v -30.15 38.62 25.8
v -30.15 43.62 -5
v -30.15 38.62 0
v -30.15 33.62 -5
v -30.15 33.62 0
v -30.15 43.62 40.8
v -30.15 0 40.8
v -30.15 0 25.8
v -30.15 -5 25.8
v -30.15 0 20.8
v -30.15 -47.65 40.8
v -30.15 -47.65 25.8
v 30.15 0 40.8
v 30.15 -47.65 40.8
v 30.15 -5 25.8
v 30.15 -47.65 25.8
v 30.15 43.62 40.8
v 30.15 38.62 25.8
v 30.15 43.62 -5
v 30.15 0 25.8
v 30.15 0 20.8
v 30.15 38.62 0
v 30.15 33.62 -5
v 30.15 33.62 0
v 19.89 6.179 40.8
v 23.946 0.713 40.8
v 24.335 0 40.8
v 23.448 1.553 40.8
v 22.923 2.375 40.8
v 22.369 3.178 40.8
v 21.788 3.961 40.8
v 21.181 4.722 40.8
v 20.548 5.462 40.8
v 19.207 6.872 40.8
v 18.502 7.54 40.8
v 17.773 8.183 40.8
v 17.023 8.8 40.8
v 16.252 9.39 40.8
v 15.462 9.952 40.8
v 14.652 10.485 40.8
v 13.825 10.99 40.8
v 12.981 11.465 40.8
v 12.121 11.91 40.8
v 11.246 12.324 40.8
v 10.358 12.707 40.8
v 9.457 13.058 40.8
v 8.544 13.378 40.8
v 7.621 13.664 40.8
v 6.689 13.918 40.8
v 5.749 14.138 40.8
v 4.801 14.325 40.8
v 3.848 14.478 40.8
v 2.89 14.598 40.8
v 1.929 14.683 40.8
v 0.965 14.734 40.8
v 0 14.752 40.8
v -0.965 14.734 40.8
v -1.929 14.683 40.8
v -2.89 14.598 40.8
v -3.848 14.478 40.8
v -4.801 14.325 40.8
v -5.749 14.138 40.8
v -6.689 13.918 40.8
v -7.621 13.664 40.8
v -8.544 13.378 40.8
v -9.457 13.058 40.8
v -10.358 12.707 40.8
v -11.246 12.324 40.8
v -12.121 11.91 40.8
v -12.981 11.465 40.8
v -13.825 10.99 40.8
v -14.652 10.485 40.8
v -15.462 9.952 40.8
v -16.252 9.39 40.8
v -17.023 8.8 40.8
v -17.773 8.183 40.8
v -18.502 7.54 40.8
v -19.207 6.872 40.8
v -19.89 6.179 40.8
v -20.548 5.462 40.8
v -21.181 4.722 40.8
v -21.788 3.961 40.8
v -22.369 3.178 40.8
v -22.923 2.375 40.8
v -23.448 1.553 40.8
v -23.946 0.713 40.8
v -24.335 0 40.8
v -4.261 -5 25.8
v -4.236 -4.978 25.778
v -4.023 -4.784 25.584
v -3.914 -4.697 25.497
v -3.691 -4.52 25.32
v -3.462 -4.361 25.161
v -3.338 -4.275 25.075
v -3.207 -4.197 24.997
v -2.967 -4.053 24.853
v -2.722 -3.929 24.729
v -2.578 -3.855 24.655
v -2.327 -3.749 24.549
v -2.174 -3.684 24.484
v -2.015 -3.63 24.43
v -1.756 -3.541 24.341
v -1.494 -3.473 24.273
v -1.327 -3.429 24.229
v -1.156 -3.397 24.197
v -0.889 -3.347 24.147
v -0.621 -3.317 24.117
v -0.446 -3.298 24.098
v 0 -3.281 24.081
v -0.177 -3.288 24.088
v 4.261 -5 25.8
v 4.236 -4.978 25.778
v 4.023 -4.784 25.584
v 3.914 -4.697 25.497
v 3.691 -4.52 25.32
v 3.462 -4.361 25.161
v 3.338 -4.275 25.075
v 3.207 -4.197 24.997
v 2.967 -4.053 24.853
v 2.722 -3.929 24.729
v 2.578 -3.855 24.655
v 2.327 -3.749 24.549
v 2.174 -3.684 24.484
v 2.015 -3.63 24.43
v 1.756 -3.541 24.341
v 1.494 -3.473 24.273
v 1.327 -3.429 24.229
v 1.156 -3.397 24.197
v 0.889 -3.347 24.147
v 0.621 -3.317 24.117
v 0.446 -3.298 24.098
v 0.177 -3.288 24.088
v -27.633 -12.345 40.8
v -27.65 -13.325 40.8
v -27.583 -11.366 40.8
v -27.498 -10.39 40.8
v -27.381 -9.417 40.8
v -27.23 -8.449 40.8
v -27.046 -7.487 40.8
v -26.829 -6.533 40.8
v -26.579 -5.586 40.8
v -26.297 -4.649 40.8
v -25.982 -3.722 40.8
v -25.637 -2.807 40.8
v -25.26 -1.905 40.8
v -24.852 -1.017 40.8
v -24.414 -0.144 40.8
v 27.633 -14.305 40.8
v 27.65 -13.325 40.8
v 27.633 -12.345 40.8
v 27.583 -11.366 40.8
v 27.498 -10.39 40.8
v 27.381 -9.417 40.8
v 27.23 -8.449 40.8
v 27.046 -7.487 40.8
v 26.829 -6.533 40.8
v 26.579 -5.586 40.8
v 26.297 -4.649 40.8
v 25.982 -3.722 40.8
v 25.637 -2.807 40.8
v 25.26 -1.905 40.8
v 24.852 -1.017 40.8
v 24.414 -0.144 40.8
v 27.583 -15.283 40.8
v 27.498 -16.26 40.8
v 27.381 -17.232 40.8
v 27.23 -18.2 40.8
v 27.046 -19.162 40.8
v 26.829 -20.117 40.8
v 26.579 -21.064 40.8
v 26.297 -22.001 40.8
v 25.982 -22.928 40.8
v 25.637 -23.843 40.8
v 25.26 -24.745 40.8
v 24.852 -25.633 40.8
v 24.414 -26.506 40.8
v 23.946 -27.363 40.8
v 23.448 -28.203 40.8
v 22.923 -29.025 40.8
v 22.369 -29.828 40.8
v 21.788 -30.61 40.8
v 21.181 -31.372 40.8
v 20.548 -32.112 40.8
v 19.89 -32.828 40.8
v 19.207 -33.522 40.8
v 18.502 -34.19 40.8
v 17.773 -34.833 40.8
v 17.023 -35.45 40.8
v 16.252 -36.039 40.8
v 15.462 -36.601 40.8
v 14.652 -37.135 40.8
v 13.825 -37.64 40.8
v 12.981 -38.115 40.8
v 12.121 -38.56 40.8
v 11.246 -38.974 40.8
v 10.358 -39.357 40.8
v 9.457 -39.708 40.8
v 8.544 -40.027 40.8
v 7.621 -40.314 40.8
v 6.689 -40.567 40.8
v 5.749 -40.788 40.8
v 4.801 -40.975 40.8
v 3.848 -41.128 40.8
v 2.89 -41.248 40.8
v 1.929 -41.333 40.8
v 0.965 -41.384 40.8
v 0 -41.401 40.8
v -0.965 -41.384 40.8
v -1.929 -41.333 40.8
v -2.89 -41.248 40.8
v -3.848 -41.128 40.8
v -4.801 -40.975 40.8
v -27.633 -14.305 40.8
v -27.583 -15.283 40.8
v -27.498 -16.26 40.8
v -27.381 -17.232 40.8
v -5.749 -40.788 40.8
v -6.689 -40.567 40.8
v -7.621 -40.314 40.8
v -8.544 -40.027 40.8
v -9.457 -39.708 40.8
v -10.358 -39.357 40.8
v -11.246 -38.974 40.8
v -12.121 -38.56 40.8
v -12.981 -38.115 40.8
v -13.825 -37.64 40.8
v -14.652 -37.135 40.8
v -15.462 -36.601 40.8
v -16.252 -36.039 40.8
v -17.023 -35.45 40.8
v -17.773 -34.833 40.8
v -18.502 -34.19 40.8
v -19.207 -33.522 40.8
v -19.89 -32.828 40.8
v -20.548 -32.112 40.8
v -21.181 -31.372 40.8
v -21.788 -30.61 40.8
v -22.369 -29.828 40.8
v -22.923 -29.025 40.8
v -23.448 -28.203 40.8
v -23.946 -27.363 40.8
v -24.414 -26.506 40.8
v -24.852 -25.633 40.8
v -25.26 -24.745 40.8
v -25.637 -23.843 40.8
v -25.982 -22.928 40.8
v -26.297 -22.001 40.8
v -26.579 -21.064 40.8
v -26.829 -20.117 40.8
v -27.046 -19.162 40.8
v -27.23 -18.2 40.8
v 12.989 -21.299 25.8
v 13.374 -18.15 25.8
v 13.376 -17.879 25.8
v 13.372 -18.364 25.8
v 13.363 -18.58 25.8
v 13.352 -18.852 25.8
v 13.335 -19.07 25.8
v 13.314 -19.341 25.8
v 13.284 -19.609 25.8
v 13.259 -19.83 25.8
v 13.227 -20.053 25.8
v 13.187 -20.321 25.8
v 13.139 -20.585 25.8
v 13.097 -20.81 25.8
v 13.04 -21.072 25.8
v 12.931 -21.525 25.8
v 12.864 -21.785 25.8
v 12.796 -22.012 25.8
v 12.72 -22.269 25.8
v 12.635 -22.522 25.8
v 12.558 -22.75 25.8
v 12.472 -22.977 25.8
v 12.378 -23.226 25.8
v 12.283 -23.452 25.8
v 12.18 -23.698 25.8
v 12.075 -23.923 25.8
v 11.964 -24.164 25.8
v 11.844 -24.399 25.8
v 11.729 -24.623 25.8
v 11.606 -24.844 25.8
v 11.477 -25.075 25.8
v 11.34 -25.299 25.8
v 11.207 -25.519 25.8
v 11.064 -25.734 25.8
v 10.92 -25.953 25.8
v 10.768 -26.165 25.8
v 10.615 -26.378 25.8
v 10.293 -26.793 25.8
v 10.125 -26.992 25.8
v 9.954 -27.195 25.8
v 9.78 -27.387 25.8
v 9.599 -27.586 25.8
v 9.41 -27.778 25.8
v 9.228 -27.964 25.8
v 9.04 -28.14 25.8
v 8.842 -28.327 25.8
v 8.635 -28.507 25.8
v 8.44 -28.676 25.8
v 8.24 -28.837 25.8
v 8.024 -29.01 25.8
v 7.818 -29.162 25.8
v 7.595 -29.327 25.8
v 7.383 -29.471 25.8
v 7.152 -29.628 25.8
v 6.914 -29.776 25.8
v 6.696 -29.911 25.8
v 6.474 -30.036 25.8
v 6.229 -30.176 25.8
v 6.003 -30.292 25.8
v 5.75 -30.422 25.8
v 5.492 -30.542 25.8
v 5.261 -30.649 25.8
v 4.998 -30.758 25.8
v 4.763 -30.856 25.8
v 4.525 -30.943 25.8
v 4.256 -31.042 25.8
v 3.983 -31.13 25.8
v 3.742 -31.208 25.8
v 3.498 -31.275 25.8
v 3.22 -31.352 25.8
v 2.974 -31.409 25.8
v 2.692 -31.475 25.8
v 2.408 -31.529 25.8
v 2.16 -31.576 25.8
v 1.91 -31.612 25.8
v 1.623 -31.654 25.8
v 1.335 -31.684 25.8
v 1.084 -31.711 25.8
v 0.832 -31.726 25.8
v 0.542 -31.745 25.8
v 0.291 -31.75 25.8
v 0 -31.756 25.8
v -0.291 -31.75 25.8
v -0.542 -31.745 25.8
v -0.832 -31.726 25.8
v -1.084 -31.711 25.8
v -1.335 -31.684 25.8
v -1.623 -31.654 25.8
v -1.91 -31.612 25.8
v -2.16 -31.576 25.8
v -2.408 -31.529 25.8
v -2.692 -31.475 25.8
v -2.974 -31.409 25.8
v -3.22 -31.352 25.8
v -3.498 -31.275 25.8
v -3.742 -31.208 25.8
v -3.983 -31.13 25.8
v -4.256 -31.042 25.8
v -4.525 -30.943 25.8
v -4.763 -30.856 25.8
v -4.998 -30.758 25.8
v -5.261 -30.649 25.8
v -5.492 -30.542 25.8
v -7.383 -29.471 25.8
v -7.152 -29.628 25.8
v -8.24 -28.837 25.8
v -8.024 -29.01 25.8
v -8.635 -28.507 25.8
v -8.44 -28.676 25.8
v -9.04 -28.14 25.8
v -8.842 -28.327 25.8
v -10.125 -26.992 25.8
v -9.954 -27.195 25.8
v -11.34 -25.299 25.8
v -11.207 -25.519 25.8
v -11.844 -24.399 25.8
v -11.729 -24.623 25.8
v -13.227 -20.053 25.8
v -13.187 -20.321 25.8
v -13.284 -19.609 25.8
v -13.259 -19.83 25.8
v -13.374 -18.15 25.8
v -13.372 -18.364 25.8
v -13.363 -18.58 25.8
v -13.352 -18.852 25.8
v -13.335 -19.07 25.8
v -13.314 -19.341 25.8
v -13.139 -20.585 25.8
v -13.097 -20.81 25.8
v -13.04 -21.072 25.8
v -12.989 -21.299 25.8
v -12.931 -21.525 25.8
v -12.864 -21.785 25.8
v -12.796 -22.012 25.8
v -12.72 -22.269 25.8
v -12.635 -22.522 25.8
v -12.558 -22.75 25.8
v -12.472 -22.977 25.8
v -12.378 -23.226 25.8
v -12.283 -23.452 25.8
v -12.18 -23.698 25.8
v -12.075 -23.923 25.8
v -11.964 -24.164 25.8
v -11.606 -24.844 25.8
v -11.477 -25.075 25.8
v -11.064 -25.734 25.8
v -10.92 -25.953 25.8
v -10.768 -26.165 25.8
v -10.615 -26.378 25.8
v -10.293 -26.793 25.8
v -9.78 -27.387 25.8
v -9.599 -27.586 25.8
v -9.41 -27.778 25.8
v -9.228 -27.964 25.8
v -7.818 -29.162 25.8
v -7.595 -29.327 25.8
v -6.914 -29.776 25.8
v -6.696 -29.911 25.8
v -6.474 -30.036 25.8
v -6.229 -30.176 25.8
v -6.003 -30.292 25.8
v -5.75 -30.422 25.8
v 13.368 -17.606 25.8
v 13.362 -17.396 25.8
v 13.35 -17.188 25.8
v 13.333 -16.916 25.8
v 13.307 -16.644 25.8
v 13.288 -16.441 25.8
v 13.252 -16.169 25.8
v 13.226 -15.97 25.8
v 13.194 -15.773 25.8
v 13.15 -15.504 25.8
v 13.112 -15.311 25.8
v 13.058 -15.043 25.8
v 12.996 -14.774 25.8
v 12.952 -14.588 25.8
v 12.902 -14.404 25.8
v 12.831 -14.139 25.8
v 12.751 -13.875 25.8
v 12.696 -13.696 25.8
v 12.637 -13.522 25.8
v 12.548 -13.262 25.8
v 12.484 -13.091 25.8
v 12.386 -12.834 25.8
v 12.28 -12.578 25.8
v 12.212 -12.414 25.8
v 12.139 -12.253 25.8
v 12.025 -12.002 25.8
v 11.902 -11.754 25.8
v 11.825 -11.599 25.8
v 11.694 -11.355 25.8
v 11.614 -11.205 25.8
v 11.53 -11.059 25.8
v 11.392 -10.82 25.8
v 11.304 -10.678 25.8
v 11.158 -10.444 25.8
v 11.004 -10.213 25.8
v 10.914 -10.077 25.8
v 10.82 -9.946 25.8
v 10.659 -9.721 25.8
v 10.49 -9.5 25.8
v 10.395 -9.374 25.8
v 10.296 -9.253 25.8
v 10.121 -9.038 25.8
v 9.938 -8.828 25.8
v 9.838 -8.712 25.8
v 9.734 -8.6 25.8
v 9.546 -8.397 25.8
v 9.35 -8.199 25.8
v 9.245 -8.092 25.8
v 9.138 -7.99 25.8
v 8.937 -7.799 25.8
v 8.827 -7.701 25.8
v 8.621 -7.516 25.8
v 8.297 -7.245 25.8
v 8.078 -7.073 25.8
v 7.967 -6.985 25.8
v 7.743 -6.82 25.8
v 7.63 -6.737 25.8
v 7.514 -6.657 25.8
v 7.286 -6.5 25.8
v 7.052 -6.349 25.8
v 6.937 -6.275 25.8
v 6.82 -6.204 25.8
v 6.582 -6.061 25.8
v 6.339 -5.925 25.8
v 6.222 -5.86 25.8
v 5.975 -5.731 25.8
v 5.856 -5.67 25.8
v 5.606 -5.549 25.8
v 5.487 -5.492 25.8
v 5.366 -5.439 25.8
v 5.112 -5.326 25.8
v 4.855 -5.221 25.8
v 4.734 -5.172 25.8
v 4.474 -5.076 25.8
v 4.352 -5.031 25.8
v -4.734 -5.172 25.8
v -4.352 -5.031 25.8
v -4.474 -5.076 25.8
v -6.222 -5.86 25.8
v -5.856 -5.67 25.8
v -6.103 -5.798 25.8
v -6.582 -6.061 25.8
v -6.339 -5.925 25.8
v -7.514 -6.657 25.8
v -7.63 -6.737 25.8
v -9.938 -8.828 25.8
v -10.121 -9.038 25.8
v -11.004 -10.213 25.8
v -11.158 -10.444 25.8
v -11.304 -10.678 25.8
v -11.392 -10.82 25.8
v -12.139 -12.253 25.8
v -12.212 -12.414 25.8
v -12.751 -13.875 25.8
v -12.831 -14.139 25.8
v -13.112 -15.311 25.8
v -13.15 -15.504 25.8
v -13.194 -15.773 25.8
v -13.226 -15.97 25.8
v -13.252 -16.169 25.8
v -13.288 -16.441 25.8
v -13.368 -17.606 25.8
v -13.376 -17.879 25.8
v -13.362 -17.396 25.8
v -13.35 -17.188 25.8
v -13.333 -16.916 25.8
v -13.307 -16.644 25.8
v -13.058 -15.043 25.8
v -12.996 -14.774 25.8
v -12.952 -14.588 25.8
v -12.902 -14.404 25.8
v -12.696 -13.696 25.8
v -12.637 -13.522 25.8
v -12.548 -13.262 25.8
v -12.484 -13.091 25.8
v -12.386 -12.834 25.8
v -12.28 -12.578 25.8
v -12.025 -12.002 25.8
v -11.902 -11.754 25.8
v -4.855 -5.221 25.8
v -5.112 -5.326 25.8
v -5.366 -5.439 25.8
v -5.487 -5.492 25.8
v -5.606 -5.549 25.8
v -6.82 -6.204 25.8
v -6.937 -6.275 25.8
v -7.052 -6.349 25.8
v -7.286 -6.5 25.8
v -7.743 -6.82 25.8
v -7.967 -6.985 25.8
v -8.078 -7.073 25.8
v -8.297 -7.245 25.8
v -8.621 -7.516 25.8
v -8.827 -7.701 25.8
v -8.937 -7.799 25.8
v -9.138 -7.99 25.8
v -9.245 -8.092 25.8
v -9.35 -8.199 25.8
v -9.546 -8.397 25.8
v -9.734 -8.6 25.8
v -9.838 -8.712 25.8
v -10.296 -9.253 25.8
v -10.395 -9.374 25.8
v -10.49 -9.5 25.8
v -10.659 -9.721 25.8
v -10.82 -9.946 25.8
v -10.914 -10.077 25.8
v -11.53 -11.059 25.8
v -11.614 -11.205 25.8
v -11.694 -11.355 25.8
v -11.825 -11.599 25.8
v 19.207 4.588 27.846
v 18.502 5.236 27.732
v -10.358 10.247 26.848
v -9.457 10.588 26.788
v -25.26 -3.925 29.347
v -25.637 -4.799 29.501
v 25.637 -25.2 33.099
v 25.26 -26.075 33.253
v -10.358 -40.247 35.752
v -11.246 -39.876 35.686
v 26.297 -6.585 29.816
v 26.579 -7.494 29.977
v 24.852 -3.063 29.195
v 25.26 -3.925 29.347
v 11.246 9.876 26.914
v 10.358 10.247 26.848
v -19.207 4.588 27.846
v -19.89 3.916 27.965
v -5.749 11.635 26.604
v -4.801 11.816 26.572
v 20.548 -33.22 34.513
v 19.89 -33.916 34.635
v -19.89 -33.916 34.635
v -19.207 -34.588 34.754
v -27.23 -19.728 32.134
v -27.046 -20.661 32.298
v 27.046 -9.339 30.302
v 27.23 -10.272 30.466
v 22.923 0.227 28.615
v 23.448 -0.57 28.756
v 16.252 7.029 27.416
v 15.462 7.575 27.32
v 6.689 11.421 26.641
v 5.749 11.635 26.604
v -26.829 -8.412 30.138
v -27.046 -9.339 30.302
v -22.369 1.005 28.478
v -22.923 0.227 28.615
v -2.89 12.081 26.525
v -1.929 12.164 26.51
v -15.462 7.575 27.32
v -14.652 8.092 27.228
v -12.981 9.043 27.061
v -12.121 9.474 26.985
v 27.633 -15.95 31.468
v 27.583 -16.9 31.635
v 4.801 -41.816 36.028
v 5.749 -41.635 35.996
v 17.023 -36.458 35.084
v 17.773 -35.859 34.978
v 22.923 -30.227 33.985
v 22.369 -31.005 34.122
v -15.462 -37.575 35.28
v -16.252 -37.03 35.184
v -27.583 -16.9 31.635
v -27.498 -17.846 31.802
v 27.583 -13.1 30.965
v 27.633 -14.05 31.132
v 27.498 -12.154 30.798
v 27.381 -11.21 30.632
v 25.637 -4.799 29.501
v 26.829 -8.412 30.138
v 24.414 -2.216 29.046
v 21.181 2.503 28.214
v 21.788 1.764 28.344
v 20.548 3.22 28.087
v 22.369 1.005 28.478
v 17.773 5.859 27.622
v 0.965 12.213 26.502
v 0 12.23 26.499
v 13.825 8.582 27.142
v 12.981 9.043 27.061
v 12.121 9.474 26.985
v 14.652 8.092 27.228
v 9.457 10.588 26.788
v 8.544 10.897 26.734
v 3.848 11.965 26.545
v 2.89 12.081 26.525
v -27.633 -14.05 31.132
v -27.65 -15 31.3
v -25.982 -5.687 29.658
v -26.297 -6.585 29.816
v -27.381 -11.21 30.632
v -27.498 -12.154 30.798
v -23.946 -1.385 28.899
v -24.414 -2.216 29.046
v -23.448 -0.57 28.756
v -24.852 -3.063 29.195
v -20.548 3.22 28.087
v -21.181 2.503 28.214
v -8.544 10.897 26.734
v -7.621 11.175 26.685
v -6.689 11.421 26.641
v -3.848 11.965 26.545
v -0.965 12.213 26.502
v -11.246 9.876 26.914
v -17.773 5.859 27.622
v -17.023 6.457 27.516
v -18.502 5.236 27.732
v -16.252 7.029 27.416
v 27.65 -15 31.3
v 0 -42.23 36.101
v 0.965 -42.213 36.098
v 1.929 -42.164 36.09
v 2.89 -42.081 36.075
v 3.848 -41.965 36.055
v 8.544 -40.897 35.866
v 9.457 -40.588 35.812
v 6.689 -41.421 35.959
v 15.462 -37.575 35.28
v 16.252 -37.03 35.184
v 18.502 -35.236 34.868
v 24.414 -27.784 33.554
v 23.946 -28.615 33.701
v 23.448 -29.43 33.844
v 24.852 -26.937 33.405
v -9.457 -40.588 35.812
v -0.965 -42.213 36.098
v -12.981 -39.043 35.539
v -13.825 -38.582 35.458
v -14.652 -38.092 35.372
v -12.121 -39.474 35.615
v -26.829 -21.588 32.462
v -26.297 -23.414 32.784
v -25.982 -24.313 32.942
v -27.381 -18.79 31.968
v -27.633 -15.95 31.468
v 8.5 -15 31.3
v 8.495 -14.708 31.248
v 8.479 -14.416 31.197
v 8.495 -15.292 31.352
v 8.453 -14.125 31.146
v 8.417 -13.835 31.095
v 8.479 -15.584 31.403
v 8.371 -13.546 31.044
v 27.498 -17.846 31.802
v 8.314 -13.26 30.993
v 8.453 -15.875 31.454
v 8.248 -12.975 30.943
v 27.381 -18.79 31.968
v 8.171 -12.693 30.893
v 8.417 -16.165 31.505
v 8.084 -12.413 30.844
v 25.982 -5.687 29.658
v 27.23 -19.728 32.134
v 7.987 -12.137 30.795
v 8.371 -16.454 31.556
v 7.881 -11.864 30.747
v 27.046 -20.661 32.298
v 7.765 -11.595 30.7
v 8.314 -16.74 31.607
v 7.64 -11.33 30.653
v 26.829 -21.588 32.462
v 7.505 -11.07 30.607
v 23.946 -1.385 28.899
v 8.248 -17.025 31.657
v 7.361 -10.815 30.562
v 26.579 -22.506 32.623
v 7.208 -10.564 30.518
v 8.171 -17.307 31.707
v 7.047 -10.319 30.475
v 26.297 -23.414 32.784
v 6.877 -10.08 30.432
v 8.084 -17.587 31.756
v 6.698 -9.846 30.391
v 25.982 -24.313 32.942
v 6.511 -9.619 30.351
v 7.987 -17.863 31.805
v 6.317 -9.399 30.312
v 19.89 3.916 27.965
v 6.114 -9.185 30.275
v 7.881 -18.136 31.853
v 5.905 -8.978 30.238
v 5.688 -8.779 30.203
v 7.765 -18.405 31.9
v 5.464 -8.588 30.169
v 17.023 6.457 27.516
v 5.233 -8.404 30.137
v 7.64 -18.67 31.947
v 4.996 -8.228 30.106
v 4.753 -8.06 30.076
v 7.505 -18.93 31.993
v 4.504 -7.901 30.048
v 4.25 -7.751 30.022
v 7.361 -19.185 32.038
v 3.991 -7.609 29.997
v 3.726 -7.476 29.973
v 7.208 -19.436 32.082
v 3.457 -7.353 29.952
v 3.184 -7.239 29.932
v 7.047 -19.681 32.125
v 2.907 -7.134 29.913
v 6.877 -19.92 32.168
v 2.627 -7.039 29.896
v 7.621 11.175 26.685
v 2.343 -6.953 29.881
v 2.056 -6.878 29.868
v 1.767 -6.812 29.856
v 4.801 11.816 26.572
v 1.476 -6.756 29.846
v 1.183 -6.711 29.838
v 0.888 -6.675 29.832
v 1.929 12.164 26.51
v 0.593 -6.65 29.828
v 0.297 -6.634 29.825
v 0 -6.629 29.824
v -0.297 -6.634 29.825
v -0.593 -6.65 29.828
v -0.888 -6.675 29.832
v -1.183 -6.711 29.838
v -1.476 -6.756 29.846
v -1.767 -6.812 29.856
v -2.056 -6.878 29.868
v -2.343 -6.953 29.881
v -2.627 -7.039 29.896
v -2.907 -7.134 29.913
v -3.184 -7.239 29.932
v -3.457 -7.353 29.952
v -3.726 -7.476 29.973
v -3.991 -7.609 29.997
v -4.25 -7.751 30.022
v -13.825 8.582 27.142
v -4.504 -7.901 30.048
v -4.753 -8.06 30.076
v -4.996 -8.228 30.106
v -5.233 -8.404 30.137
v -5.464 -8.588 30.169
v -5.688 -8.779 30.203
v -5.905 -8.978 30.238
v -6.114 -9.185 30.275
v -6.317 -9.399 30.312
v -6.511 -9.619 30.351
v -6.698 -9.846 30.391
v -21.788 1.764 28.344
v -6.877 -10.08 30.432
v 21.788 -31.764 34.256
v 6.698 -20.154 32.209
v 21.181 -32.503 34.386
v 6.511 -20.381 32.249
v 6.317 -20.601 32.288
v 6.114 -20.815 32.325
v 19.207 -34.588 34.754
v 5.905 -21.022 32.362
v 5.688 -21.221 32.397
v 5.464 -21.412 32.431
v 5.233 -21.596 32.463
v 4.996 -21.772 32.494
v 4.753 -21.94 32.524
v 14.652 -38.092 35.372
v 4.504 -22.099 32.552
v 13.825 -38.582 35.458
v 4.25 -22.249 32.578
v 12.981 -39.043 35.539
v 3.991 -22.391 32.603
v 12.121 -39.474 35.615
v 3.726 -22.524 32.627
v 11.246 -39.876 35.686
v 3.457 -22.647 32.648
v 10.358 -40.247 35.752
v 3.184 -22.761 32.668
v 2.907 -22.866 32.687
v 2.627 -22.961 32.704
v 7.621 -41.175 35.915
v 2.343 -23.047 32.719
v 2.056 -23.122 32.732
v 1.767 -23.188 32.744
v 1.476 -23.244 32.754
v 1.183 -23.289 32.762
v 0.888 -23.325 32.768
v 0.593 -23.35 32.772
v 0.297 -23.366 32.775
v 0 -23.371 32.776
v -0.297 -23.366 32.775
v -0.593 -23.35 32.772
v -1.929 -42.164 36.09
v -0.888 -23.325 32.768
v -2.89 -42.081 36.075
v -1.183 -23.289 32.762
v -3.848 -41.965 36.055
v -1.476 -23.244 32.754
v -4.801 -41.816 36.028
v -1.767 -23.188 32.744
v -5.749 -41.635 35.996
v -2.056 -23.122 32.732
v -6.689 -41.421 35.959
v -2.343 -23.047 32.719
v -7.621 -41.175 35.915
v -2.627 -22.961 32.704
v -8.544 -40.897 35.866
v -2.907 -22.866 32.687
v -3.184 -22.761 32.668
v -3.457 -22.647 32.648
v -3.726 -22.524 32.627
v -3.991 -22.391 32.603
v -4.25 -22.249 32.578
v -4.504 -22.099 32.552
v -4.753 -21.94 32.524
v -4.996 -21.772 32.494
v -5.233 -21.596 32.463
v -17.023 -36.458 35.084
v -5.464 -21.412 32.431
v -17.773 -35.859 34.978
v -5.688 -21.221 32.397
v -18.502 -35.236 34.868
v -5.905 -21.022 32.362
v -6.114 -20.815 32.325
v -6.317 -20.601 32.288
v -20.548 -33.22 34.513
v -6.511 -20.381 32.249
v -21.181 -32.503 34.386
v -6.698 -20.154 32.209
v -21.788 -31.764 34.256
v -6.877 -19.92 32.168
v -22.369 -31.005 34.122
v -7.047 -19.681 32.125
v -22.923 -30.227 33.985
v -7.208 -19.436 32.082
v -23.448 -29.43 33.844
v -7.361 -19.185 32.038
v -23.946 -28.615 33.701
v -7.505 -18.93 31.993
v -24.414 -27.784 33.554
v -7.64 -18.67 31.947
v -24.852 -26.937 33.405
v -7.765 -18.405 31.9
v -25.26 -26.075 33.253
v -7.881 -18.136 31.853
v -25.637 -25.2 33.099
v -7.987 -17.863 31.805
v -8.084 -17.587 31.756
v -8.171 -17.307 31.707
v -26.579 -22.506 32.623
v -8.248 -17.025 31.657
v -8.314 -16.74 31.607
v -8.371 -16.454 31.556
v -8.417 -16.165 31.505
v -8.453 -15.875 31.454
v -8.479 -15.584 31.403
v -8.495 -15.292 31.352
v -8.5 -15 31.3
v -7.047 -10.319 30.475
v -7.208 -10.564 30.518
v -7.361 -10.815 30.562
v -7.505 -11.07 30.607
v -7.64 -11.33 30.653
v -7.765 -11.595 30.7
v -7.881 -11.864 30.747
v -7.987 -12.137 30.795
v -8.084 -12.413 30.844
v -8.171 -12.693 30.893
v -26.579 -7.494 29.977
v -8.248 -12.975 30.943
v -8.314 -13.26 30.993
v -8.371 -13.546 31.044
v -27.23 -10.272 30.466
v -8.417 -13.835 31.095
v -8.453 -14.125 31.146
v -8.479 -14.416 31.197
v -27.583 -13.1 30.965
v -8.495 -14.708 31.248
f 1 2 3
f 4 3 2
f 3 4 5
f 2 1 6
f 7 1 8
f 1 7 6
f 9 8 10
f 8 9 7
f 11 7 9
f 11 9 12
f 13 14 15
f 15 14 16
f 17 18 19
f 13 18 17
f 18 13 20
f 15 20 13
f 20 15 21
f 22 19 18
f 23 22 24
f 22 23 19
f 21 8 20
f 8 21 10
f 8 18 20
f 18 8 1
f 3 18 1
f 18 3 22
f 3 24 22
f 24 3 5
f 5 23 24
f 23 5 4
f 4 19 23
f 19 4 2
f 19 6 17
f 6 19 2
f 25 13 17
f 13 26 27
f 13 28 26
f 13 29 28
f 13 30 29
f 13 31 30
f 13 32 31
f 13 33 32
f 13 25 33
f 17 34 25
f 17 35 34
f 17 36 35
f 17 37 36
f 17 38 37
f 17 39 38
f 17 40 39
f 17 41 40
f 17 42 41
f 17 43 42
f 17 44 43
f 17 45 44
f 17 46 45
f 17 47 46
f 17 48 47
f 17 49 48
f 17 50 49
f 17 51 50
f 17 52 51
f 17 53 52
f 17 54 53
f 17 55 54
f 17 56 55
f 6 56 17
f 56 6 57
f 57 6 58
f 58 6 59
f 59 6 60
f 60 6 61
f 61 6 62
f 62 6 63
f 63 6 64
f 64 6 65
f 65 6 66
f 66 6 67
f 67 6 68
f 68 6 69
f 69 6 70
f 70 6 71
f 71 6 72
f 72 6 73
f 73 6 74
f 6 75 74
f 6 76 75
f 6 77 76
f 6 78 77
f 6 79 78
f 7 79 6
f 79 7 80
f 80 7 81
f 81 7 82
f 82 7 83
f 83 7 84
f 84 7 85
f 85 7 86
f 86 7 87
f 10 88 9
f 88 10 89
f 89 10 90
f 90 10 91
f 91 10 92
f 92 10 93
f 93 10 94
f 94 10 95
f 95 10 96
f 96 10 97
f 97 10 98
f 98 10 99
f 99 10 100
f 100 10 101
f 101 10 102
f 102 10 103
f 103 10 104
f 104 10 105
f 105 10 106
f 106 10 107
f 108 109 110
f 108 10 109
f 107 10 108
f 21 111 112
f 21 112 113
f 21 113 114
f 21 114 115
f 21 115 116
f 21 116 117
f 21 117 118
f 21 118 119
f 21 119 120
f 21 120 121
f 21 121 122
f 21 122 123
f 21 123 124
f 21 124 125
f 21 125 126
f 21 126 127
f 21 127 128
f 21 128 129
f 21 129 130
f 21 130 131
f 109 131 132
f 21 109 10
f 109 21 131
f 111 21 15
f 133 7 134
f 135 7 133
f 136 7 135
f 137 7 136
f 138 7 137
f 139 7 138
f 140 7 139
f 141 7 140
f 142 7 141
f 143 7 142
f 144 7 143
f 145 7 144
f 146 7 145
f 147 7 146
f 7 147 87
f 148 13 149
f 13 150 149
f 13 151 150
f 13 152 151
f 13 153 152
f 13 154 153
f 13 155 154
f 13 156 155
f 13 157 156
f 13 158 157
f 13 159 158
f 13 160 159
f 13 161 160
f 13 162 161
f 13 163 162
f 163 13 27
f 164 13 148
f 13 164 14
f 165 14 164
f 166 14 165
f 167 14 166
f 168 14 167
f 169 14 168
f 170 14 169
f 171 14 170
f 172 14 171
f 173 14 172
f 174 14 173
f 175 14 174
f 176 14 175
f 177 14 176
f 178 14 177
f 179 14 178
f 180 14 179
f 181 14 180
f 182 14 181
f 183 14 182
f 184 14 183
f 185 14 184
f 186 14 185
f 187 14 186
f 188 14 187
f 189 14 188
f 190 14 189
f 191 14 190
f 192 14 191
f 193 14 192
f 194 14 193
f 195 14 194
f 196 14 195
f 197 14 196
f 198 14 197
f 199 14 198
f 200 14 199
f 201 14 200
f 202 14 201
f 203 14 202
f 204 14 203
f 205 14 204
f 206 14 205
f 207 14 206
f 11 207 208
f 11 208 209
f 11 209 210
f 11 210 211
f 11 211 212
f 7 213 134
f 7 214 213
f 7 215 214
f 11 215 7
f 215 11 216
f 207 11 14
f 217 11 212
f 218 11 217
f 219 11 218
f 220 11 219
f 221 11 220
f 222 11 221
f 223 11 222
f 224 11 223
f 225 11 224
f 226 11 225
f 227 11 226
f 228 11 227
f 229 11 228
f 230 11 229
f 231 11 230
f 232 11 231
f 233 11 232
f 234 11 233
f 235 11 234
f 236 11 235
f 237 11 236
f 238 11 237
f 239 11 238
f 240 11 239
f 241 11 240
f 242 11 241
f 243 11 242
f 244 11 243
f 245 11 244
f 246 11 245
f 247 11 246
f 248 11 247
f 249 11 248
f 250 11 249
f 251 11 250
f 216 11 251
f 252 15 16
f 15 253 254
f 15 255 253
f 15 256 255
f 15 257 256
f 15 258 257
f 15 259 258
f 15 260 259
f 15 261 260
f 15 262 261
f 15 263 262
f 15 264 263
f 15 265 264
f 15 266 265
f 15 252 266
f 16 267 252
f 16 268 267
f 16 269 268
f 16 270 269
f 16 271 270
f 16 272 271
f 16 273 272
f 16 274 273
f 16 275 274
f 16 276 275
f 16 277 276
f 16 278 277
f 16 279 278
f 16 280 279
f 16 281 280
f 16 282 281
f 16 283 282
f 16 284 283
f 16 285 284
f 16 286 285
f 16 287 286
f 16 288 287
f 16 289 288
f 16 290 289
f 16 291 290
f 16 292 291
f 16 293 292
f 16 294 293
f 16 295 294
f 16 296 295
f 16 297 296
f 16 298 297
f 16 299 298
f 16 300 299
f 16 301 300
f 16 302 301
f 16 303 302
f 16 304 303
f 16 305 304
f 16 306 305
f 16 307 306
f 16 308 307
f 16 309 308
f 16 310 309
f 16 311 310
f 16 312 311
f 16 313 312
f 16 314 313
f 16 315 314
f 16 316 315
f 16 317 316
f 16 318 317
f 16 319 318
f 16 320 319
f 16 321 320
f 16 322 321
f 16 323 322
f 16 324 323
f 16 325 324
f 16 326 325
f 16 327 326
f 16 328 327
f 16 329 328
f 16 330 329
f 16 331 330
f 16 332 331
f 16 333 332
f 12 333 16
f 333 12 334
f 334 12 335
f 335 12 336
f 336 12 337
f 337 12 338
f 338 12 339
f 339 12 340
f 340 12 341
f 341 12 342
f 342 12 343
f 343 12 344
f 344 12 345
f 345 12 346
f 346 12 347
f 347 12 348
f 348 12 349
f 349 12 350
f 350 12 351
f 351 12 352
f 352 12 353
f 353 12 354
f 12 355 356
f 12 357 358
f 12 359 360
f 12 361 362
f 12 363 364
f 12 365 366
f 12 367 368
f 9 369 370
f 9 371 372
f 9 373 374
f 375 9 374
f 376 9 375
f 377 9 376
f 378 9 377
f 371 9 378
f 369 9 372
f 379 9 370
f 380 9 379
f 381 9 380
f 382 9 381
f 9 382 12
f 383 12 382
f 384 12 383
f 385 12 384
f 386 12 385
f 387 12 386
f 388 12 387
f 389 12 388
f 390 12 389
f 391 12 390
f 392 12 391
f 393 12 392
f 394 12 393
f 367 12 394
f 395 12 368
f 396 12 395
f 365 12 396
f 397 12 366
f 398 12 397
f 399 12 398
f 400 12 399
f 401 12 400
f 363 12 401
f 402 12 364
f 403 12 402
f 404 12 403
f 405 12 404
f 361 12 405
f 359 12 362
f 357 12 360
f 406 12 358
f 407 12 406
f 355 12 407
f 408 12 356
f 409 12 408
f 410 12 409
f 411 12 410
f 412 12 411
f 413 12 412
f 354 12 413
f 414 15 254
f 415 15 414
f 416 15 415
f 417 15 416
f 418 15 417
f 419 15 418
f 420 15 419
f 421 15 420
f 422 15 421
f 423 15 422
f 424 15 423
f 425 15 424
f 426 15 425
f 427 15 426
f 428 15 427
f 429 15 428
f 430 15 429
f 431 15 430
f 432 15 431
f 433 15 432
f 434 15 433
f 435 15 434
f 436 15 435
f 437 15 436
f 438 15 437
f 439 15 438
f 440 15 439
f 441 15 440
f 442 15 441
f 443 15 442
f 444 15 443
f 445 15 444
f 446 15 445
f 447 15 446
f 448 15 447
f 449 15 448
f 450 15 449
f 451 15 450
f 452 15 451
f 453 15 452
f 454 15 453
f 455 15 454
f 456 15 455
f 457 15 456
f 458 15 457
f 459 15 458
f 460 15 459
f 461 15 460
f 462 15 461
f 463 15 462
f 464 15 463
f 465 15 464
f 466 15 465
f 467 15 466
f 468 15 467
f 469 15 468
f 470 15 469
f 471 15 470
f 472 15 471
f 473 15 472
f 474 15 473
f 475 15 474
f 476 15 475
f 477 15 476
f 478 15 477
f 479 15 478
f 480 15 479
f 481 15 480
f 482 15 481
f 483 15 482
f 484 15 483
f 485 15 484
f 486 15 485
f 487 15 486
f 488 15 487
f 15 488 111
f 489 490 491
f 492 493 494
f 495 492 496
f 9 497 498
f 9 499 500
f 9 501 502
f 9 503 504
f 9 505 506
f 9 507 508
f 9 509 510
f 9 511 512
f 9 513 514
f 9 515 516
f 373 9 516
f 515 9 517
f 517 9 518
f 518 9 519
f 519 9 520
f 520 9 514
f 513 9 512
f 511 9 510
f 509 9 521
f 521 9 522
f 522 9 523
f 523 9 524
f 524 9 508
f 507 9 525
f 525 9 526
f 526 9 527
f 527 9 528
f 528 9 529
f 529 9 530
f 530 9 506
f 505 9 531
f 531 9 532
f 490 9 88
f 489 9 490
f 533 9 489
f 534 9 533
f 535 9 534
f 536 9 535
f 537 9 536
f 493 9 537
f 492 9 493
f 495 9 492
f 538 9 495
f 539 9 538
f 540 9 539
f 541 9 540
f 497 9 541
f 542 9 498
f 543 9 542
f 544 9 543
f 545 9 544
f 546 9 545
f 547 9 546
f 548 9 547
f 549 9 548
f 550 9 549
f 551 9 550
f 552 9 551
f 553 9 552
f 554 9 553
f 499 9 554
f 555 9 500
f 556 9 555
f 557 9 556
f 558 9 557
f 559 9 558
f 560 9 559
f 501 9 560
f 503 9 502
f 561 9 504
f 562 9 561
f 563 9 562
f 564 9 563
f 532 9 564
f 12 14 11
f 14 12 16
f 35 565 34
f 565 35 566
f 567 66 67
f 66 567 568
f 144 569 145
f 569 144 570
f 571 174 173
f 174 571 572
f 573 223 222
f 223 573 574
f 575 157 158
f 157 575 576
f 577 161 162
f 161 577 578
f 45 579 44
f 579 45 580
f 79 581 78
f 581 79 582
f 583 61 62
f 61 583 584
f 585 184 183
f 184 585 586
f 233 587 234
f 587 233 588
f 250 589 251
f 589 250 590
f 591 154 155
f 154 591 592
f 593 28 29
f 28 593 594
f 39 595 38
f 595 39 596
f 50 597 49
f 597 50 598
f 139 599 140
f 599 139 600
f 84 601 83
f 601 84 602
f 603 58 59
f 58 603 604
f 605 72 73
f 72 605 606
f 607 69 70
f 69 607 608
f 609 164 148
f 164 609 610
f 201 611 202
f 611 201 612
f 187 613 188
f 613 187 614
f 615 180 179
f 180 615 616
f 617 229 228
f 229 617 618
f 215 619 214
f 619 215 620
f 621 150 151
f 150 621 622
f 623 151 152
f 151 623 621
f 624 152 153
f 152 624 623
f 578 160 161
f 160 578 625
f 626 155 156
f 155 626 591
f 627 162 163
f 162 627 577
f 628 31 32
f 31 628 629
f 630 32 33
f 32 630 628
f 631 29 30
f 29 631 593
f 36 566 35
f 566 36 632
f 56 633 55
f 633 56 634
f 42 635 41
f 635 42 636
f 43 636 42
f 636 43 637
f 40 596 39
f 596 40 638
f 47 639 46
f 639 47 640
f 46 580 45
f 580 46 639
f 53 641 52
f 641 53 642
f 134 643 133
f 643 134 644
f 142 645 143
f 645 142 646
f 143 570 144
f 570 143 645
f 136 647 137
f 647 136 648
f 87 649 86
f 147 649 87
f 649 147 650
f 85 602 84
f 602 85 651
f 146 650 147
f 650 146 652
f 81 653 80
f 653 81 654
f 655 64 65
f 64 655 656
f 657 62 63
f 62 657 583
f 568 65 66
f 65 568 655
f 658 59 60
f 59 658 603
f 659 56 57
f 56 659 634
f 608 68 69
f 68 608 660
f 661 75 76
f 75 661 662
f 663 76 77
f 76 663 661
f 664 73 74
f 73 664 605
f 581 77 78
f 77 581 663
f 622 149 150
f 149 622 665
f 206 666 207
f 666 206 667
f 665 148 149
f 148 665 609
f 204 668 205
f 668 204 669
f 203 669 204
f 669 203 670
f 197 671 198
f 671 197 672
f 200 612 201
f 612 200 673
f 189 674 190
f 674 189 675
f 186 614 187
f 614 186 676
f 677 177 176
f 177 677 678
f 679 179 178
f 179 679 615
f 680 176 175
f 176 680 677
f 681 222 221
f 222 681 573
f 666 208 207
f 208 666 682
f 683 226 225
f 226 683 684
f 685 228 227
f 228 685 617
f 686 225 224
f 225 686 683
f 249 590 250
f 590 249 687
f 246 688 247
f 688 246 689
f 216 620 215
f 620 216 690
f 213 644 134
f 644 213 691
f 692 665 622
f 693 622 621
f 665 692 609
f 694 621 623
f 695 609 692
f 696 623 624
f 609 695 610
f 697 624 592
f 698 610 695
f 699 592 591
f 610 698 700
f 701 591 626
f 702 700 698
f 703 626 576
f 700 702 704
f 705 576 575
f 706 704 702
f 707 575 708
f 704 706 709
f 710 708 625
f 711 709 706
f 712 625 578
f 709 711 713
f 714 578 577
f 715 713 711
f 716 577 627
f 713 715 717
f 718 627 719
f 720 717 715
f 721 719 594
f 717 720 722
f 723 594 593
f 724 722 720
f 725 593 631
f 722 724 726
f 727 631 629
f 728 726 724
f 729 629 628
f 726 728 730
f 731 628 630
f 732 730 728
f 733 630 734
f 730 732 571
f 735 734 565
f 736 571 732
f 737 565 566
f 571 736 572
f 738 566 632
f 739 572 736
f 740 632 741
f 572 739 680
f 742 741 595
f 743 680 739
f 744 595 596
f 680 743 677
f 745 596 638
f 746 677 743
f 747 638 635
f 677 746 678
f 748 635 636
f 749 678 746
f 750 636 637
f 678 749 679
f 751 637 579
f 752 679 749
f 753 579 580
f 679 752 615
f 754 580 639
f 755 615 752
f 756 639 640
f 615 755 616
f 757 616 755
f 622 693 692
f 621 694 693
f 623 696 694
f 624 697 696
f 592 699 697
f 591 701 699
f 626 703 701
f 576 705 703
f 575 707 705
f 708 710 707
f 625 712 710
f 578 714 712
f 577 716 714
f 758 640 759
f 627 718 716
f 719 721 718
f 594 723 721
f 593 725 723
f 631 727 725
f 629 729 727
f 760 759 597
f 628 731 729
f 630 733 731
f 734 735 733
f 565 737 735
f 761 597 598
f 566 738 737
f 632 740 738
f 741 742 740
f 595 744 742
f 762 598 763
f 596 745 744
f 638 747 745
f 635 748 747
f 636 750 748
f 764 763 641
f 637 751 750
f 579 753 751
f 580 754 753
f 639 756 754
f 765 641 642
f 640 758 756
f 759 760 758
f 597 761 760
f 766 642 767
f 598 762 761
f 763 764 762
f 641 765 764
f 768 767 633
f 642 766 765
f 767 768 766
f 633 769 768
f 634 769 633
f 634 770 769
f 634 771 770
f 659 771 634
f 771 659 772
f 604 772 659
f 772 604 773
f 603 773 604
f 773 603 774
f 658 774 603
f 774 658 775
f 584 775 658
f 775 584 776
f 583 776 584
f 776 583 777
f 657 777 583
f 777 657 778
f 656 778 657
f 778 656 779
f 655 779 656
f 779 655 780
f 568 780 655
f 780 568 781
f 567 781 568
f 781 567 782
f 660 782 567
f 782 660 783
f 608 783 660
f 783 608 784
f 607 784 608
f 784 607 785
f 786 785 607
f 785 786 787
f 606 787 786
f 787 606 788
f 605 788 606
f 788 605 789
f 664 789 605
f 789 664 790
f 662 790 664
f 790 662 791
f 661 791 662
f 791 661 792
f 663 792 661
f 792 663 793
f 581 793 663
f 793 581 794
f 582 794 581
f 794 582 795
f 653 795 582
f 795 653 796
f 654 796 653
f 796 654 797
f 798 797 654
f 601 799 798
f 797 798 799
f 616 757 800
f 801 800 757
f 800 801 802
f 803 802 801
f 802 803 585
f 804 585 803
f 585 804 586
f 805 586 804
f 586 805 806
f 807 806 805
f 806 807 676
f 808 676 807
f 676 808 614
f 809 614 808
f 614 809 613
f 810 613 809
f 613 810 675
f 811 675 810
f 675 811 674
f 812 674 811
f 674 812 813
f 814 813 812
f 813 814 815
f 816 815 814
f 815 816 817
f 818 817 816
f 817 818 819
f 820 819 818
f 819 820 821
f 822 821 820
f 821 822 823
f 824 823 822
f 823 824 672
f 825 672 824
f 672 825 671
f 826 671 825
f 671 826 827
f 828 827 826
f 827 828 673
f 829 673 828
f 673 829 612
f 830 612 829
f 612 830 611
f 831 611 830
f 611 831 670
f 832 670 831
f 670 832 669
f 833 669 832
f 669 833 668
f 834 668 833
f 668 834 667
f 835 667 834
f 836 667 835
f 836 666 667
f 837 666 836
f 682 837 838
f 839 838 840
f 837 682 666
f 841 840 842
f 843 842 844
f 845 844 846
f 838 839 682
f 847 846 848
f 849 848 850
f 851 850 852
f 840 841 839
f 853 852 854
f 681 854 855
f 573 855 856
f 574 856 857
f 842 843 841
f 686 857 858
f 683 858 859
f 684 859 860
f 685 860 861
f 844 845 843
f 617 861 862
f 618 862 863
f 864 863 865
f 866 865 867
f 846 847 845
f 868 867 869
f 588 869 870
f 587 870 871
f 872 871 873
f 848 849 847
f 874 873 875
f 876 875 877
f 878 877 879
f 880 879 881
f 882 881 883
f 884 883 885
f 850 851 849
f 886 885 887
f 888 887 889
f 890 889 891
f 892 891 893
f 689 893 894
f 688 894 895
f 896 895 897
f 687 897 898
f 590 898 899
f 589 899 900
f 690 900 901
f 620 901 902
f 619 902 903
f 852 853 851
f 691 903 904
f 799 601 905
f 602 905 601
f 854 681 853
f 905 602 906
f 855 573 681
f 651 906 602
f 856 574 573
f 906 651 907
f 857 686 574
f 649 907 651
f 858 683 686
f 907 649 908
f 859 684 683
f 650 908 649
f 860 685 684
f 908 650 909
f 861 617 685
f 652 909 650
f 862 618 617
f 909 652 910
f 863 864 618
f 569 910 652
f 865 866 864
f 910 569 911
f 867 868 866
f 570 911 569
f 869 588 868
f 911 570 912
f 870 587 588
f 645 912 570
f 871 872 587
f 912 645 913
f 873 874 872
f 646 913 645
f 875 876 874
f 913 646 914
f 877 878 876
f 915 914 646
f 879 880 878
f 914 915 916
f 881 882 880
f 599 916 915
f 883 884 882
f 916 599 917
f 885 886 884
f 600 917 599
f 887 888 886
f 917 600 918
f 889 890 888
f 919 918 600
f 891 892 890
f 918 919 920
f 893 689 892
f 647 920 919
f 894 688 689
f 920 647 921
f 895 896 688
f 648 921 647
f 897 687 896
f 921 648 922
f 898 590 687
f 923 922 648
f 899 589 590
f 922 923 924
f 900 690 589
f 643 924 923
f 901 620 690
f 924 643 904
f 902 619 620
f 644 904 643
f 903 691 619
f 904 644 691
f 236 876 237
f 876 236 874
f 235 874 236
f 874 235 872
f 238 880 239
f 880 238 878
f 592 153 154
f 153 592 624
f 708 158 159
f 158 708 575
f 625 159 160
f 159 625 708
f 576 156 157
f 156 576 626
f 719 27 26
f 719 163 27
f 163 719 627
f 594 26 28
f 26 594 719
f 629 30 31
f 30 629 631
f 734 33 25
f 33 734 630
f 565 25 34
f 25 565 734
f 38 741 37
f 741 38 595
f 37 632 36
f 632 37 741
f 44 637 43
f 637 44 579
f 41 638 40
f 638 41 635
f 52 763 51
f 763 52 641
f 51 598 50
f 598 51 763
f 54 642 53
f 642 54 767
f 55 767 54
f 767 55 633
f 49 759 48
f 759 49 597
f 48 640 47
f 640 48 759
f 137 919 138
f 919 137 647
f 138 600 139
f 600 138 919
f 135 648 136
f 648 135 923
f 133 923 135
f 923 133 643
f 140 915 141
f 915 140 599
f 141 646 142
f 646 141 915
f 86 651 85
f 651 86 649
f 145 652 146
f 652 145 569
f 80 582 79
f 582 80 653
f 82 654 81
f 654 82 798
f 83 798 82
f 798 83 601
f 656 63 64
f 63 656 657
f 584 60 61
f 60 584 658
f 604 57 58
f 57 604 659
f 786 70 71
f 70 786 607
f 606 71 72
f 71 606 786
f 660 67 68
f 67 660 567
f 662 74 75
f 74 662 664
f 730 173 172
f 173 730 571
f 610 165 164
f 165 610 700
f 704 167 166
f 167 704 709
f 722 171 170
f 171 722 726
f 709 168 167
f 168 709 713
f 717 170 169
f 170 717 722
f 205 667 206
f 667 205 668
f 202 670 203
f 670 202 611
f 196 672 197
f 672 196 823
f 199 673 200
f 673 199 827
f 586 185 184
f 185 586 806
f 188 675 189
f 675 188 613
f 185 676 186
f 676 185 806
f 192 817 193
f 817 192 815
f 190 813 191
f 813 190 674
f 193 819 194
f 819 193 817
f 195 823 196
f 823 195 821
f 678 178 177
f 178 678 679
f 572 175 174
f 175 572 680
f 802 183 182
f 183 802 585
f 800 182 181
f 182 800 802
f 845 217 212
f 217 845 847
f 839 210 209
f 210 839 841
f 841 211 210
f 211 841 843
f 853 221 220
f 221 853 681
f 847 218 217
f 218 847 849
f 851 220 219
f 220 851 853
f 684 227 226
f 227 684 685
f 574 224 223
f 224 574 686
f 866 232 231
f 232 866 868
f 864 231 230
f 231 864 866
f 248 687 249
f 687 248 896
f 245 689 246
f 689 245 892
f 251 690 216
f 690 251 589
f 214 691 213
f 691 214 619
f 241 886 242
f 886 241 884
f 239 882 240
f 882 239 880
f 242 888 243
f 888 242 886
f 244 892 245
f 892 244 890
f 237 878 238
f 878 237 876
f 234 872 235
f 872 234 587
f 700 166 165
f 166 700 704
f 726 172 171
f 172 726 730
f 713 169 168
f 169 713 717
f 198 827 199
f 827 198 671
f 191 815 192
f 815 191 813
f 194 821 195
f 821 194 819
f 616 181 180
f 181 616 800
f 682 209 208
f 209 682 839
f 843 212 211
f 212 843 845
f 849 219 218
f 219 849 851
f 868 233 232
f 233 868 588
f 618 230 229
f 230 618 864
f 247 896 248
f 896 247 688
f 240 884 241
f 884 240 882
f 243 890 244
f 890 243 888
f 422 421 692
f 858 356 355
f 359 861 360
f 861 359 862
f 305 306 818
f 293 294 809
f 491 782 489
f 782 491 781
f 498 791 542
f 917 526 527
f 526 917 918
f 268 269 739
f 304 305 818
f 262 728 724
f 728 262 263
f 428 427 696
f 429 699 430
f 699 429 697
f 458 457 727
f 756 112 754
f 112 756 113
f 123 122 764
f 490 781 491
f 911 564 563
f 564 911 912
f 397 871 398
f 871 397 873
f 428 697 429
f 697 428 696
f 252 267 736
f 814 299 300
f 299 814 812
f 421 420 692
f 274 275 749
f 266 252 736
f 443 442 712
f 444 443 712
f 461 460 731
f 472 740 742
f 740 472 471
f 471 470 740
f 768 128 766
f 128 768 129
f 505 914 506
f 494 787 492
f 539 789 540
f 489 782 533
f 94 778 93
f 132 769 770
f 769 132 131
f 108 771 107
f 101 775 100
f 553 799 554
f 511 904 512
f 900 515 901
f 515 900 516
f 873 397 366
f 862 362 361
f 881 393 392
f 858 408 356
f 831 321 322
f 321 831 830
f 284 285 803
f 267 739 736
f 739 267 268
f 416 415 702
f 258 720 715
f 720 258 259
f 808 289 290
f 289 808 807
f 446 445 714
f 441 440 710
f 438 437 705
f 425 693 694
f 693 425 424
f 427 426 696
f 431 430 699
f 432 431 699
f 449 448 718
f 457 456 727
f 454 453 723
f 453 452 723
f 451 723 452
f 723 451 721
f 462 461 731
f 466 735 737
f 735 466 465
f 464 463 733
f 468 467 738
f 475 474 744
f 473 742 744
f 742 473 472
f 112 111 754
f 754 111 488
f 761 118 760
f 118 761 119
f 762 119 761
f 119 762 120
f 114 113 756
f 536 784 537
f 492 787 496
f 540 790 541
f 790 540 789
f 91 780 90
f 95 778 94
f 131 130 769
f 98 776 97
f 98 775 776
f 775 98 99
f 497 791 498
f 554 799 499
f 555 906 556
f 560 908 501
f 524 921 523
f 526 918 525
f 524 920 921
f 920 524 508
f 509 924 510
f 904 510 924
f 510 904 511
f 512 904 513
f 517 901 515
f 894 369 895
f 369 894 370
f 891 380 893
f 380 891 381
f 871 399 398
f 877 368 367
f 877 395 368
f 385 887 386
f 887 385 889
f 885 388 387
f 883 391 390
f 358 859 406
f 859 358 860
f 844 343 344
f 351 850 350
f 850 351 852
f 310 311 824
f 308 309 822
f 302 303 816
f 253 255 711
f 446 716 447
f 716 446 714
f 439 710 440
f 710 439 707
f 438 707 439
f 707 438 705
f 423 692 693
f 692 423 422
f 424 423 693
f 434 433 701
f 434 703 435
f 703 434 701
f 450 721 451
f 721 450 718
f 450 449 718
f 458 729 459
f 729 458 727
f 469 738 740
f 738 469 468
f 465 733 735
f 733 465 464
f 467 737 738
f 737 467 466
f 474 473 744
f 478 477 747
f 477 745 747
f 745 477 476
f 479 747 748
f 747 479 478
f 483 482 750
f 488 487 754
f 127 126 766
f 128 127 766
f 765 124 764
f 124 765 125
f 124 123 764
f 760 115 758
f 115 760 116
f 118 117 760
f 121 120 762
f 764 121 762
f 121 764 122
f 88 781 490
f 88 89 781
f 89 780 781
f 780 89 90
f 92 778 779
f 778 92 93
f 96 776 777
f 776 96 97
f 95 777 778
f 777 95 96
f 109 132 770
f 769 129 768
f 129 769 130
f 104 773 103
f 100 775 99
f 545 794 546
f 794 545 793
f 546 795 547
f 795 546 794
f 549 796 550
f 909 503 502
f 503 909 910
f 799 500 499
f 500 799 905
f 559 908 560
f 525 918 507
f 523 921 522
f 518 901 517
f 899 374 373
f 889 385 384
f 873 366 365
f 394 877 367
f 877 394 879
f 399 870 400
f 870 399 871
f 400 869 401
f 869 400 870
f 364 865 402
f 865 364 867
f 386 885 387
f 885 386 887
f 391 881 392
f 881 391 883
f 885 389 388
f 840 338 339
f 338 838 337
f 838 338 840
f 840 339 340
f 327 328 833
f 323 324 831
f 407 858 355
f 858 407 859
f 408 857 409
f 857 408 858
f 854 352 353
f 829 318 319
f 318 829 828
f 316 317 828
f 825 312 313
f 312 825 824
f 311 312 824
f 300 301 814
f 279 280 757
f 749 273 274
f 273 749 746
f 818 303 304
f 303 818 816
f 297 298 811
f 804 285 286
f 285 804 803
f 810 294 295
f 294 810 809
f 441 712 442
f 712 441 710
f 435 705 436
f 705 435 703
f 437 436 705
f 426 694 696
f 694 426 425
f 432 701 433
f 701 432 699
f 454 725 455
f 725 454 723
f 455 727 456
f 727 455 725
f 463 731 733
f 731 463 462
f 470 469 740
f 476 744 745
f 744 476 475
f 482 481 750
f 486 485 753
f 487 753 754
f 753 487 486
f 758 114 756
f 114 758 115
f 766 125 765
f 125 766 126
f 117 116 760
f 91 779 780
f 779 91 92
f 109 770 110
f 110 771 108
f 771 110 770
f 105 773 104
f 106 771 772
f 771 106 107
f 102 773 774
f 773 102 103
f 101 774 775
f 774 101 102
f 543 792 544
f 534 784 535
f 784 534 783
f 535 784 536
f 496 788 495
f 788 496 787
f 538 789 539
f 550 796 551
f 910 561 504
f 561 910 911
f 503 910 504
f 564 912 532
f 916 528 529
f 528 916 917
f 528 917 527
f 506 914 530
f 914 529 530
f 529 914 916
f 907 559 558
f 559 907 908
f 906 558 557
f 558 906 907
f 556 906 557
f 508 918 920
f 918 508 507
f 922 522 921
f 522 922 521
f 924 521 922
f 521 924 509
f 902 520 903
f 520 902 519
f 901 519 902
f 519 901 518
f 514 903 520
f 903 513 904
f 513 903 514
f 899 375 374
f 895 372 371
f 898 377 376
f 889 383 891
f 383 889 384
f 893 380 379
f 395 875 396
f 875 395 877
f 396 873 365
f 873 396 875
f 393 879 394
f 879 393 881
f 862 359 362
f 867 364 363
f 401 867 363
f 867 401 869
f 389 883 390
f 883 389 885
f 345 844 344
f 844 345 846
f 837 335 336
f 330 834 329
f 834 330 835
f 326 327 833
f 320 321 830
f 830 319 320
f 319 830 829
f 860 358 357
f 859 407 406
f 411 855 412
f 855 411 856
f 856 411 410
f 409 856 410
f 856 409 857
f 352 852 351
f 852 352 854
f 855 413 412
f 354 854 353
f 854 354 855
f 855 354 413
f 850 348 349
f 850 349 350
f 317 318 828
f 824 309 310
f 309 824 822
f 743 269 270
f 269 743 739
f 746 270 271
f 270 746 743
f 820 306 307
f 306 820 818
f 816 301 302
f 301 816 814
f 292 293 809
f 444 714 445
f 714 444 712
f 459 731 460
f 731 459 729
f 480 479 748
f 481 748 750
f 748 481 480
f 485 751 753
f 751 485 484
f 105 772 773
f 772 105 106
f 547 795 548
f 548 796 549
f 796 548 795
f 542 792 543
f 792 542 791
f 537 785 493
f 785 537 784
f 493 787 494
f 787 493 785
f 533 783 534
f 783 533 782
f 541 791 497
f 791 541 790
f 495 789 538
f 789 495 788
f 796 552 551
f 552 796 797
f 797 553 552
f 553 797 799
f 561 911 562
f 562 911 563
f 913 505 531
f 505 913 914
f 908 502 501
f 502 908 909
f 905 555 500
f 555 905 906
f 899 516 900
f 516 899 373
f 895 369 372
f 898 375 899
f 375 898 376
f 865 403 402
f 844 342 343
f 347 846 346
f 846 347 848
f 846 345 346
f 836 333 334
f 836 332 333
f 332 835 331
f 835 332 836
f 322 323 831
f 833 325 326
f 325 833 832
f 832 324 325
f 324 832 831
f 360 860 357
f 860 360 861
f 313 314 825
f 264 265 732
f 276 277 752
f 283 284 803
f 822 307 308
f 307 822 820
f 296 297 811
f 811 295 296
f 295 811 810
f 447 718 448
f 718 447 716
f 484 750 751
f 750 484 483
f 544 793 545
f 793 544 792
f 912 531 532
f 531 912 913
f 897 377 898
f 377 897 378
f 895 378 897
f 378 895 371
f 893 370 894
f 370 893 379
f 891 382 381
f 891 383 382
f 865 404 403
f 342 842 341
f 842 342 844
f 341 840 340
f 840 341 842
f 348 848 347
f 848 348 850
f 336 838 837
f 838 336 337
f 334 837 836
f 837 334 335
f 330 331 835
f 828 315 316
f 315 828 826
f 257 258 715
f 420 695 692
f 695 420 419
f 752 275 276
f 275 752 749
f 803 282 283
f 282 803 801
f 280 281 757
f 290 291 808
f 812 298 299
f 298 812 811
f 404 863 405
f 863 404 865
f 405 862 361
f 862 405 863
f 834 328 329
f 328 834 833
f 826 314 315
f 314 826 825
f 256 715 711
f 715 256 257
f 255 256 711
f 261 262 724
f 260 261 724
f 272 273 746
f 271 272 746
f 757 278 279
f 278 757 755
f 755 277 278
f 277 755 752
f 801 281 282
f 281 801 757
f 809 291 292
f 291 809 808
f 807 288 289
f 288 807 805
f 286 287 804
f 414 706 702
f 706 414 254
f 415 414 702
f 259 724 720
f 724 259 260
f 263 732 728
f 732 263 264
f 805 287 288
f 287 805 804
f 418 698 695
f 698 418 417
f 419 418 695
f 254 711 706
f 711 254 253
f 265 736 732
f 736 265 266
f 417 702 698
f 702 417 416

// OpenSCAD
$fn = 180;

solar_light_radius = 54.8 / 2 + 0.25; // plus a little room for putting the light in the hole
solar_light_height = 30.5;
solar_led_width = 8.5;

railing_width = 38.62;
railing_height = 25.8;

wall_thickness = 5;
gap = 0.5;
hook_width = solar_light_radius * 2 + wall_thickness;

solar_light_offset = 15;
solar_light_height_offset = -2;
top_thickness = wall_thickness + 10;

module railing(length = 100) {
    translate([-length/2, 0, 0]) cube([length,railing_width,railing_height]);
}
module solar_light () {
    projection = solar_light_radius*2;
    cylinder(r=solar_light_radius, h=solar_light_height);
    translate([0, 0, -projection]) cylinder(r1 = projection, r2 = solar_led_width, h=solar_light_radius*2);
}

module hook () {
    height = railing_height + top_thickness + wall_thickness;
    width = railing_width + wall_thickness * 2;
    translate([-hook_width/2, width-wall_thickness, -wall_thickness]) {
        rotate([0,90,0]) {
            linear_extrude(hook_width) {
                polygon(
                    points = [
                        [0,0],
                        [-height, 0], // top corner
                        [-height, -width], // other top corner
                        [-height+top_thickness, -width],
                        [-height+top_thickness+wall_thickness, -width+wall_thickness],
                        [-height+top_thickness, -width+wall_thickness], // inside corner
                        [-height+top_thickness, -wall_thickness], // other inside corner
                        [-wall_thickness, -wall_thickness], // other inside corner
                        [-wall_thickness, -wall_thickness*2],
                        [0, -wall_thickness*2]
                    ]
                );
            }
        }
    }
}
module platform(length = 100) {
    translate([-hook_width/2, -length, railing_height]) cube([hook_width, length, top_thickness]);
}
difference () {
    union () {
        hook();
        platform(solar_light_radius+5+solar_light_offset);
        %railing(200);
    }
    #translate([0, -solar_light_offset, (railing_height+top_thickness/2)+solar_light_height_offset]) rotate([-10,0,0]) solar_light();
}
